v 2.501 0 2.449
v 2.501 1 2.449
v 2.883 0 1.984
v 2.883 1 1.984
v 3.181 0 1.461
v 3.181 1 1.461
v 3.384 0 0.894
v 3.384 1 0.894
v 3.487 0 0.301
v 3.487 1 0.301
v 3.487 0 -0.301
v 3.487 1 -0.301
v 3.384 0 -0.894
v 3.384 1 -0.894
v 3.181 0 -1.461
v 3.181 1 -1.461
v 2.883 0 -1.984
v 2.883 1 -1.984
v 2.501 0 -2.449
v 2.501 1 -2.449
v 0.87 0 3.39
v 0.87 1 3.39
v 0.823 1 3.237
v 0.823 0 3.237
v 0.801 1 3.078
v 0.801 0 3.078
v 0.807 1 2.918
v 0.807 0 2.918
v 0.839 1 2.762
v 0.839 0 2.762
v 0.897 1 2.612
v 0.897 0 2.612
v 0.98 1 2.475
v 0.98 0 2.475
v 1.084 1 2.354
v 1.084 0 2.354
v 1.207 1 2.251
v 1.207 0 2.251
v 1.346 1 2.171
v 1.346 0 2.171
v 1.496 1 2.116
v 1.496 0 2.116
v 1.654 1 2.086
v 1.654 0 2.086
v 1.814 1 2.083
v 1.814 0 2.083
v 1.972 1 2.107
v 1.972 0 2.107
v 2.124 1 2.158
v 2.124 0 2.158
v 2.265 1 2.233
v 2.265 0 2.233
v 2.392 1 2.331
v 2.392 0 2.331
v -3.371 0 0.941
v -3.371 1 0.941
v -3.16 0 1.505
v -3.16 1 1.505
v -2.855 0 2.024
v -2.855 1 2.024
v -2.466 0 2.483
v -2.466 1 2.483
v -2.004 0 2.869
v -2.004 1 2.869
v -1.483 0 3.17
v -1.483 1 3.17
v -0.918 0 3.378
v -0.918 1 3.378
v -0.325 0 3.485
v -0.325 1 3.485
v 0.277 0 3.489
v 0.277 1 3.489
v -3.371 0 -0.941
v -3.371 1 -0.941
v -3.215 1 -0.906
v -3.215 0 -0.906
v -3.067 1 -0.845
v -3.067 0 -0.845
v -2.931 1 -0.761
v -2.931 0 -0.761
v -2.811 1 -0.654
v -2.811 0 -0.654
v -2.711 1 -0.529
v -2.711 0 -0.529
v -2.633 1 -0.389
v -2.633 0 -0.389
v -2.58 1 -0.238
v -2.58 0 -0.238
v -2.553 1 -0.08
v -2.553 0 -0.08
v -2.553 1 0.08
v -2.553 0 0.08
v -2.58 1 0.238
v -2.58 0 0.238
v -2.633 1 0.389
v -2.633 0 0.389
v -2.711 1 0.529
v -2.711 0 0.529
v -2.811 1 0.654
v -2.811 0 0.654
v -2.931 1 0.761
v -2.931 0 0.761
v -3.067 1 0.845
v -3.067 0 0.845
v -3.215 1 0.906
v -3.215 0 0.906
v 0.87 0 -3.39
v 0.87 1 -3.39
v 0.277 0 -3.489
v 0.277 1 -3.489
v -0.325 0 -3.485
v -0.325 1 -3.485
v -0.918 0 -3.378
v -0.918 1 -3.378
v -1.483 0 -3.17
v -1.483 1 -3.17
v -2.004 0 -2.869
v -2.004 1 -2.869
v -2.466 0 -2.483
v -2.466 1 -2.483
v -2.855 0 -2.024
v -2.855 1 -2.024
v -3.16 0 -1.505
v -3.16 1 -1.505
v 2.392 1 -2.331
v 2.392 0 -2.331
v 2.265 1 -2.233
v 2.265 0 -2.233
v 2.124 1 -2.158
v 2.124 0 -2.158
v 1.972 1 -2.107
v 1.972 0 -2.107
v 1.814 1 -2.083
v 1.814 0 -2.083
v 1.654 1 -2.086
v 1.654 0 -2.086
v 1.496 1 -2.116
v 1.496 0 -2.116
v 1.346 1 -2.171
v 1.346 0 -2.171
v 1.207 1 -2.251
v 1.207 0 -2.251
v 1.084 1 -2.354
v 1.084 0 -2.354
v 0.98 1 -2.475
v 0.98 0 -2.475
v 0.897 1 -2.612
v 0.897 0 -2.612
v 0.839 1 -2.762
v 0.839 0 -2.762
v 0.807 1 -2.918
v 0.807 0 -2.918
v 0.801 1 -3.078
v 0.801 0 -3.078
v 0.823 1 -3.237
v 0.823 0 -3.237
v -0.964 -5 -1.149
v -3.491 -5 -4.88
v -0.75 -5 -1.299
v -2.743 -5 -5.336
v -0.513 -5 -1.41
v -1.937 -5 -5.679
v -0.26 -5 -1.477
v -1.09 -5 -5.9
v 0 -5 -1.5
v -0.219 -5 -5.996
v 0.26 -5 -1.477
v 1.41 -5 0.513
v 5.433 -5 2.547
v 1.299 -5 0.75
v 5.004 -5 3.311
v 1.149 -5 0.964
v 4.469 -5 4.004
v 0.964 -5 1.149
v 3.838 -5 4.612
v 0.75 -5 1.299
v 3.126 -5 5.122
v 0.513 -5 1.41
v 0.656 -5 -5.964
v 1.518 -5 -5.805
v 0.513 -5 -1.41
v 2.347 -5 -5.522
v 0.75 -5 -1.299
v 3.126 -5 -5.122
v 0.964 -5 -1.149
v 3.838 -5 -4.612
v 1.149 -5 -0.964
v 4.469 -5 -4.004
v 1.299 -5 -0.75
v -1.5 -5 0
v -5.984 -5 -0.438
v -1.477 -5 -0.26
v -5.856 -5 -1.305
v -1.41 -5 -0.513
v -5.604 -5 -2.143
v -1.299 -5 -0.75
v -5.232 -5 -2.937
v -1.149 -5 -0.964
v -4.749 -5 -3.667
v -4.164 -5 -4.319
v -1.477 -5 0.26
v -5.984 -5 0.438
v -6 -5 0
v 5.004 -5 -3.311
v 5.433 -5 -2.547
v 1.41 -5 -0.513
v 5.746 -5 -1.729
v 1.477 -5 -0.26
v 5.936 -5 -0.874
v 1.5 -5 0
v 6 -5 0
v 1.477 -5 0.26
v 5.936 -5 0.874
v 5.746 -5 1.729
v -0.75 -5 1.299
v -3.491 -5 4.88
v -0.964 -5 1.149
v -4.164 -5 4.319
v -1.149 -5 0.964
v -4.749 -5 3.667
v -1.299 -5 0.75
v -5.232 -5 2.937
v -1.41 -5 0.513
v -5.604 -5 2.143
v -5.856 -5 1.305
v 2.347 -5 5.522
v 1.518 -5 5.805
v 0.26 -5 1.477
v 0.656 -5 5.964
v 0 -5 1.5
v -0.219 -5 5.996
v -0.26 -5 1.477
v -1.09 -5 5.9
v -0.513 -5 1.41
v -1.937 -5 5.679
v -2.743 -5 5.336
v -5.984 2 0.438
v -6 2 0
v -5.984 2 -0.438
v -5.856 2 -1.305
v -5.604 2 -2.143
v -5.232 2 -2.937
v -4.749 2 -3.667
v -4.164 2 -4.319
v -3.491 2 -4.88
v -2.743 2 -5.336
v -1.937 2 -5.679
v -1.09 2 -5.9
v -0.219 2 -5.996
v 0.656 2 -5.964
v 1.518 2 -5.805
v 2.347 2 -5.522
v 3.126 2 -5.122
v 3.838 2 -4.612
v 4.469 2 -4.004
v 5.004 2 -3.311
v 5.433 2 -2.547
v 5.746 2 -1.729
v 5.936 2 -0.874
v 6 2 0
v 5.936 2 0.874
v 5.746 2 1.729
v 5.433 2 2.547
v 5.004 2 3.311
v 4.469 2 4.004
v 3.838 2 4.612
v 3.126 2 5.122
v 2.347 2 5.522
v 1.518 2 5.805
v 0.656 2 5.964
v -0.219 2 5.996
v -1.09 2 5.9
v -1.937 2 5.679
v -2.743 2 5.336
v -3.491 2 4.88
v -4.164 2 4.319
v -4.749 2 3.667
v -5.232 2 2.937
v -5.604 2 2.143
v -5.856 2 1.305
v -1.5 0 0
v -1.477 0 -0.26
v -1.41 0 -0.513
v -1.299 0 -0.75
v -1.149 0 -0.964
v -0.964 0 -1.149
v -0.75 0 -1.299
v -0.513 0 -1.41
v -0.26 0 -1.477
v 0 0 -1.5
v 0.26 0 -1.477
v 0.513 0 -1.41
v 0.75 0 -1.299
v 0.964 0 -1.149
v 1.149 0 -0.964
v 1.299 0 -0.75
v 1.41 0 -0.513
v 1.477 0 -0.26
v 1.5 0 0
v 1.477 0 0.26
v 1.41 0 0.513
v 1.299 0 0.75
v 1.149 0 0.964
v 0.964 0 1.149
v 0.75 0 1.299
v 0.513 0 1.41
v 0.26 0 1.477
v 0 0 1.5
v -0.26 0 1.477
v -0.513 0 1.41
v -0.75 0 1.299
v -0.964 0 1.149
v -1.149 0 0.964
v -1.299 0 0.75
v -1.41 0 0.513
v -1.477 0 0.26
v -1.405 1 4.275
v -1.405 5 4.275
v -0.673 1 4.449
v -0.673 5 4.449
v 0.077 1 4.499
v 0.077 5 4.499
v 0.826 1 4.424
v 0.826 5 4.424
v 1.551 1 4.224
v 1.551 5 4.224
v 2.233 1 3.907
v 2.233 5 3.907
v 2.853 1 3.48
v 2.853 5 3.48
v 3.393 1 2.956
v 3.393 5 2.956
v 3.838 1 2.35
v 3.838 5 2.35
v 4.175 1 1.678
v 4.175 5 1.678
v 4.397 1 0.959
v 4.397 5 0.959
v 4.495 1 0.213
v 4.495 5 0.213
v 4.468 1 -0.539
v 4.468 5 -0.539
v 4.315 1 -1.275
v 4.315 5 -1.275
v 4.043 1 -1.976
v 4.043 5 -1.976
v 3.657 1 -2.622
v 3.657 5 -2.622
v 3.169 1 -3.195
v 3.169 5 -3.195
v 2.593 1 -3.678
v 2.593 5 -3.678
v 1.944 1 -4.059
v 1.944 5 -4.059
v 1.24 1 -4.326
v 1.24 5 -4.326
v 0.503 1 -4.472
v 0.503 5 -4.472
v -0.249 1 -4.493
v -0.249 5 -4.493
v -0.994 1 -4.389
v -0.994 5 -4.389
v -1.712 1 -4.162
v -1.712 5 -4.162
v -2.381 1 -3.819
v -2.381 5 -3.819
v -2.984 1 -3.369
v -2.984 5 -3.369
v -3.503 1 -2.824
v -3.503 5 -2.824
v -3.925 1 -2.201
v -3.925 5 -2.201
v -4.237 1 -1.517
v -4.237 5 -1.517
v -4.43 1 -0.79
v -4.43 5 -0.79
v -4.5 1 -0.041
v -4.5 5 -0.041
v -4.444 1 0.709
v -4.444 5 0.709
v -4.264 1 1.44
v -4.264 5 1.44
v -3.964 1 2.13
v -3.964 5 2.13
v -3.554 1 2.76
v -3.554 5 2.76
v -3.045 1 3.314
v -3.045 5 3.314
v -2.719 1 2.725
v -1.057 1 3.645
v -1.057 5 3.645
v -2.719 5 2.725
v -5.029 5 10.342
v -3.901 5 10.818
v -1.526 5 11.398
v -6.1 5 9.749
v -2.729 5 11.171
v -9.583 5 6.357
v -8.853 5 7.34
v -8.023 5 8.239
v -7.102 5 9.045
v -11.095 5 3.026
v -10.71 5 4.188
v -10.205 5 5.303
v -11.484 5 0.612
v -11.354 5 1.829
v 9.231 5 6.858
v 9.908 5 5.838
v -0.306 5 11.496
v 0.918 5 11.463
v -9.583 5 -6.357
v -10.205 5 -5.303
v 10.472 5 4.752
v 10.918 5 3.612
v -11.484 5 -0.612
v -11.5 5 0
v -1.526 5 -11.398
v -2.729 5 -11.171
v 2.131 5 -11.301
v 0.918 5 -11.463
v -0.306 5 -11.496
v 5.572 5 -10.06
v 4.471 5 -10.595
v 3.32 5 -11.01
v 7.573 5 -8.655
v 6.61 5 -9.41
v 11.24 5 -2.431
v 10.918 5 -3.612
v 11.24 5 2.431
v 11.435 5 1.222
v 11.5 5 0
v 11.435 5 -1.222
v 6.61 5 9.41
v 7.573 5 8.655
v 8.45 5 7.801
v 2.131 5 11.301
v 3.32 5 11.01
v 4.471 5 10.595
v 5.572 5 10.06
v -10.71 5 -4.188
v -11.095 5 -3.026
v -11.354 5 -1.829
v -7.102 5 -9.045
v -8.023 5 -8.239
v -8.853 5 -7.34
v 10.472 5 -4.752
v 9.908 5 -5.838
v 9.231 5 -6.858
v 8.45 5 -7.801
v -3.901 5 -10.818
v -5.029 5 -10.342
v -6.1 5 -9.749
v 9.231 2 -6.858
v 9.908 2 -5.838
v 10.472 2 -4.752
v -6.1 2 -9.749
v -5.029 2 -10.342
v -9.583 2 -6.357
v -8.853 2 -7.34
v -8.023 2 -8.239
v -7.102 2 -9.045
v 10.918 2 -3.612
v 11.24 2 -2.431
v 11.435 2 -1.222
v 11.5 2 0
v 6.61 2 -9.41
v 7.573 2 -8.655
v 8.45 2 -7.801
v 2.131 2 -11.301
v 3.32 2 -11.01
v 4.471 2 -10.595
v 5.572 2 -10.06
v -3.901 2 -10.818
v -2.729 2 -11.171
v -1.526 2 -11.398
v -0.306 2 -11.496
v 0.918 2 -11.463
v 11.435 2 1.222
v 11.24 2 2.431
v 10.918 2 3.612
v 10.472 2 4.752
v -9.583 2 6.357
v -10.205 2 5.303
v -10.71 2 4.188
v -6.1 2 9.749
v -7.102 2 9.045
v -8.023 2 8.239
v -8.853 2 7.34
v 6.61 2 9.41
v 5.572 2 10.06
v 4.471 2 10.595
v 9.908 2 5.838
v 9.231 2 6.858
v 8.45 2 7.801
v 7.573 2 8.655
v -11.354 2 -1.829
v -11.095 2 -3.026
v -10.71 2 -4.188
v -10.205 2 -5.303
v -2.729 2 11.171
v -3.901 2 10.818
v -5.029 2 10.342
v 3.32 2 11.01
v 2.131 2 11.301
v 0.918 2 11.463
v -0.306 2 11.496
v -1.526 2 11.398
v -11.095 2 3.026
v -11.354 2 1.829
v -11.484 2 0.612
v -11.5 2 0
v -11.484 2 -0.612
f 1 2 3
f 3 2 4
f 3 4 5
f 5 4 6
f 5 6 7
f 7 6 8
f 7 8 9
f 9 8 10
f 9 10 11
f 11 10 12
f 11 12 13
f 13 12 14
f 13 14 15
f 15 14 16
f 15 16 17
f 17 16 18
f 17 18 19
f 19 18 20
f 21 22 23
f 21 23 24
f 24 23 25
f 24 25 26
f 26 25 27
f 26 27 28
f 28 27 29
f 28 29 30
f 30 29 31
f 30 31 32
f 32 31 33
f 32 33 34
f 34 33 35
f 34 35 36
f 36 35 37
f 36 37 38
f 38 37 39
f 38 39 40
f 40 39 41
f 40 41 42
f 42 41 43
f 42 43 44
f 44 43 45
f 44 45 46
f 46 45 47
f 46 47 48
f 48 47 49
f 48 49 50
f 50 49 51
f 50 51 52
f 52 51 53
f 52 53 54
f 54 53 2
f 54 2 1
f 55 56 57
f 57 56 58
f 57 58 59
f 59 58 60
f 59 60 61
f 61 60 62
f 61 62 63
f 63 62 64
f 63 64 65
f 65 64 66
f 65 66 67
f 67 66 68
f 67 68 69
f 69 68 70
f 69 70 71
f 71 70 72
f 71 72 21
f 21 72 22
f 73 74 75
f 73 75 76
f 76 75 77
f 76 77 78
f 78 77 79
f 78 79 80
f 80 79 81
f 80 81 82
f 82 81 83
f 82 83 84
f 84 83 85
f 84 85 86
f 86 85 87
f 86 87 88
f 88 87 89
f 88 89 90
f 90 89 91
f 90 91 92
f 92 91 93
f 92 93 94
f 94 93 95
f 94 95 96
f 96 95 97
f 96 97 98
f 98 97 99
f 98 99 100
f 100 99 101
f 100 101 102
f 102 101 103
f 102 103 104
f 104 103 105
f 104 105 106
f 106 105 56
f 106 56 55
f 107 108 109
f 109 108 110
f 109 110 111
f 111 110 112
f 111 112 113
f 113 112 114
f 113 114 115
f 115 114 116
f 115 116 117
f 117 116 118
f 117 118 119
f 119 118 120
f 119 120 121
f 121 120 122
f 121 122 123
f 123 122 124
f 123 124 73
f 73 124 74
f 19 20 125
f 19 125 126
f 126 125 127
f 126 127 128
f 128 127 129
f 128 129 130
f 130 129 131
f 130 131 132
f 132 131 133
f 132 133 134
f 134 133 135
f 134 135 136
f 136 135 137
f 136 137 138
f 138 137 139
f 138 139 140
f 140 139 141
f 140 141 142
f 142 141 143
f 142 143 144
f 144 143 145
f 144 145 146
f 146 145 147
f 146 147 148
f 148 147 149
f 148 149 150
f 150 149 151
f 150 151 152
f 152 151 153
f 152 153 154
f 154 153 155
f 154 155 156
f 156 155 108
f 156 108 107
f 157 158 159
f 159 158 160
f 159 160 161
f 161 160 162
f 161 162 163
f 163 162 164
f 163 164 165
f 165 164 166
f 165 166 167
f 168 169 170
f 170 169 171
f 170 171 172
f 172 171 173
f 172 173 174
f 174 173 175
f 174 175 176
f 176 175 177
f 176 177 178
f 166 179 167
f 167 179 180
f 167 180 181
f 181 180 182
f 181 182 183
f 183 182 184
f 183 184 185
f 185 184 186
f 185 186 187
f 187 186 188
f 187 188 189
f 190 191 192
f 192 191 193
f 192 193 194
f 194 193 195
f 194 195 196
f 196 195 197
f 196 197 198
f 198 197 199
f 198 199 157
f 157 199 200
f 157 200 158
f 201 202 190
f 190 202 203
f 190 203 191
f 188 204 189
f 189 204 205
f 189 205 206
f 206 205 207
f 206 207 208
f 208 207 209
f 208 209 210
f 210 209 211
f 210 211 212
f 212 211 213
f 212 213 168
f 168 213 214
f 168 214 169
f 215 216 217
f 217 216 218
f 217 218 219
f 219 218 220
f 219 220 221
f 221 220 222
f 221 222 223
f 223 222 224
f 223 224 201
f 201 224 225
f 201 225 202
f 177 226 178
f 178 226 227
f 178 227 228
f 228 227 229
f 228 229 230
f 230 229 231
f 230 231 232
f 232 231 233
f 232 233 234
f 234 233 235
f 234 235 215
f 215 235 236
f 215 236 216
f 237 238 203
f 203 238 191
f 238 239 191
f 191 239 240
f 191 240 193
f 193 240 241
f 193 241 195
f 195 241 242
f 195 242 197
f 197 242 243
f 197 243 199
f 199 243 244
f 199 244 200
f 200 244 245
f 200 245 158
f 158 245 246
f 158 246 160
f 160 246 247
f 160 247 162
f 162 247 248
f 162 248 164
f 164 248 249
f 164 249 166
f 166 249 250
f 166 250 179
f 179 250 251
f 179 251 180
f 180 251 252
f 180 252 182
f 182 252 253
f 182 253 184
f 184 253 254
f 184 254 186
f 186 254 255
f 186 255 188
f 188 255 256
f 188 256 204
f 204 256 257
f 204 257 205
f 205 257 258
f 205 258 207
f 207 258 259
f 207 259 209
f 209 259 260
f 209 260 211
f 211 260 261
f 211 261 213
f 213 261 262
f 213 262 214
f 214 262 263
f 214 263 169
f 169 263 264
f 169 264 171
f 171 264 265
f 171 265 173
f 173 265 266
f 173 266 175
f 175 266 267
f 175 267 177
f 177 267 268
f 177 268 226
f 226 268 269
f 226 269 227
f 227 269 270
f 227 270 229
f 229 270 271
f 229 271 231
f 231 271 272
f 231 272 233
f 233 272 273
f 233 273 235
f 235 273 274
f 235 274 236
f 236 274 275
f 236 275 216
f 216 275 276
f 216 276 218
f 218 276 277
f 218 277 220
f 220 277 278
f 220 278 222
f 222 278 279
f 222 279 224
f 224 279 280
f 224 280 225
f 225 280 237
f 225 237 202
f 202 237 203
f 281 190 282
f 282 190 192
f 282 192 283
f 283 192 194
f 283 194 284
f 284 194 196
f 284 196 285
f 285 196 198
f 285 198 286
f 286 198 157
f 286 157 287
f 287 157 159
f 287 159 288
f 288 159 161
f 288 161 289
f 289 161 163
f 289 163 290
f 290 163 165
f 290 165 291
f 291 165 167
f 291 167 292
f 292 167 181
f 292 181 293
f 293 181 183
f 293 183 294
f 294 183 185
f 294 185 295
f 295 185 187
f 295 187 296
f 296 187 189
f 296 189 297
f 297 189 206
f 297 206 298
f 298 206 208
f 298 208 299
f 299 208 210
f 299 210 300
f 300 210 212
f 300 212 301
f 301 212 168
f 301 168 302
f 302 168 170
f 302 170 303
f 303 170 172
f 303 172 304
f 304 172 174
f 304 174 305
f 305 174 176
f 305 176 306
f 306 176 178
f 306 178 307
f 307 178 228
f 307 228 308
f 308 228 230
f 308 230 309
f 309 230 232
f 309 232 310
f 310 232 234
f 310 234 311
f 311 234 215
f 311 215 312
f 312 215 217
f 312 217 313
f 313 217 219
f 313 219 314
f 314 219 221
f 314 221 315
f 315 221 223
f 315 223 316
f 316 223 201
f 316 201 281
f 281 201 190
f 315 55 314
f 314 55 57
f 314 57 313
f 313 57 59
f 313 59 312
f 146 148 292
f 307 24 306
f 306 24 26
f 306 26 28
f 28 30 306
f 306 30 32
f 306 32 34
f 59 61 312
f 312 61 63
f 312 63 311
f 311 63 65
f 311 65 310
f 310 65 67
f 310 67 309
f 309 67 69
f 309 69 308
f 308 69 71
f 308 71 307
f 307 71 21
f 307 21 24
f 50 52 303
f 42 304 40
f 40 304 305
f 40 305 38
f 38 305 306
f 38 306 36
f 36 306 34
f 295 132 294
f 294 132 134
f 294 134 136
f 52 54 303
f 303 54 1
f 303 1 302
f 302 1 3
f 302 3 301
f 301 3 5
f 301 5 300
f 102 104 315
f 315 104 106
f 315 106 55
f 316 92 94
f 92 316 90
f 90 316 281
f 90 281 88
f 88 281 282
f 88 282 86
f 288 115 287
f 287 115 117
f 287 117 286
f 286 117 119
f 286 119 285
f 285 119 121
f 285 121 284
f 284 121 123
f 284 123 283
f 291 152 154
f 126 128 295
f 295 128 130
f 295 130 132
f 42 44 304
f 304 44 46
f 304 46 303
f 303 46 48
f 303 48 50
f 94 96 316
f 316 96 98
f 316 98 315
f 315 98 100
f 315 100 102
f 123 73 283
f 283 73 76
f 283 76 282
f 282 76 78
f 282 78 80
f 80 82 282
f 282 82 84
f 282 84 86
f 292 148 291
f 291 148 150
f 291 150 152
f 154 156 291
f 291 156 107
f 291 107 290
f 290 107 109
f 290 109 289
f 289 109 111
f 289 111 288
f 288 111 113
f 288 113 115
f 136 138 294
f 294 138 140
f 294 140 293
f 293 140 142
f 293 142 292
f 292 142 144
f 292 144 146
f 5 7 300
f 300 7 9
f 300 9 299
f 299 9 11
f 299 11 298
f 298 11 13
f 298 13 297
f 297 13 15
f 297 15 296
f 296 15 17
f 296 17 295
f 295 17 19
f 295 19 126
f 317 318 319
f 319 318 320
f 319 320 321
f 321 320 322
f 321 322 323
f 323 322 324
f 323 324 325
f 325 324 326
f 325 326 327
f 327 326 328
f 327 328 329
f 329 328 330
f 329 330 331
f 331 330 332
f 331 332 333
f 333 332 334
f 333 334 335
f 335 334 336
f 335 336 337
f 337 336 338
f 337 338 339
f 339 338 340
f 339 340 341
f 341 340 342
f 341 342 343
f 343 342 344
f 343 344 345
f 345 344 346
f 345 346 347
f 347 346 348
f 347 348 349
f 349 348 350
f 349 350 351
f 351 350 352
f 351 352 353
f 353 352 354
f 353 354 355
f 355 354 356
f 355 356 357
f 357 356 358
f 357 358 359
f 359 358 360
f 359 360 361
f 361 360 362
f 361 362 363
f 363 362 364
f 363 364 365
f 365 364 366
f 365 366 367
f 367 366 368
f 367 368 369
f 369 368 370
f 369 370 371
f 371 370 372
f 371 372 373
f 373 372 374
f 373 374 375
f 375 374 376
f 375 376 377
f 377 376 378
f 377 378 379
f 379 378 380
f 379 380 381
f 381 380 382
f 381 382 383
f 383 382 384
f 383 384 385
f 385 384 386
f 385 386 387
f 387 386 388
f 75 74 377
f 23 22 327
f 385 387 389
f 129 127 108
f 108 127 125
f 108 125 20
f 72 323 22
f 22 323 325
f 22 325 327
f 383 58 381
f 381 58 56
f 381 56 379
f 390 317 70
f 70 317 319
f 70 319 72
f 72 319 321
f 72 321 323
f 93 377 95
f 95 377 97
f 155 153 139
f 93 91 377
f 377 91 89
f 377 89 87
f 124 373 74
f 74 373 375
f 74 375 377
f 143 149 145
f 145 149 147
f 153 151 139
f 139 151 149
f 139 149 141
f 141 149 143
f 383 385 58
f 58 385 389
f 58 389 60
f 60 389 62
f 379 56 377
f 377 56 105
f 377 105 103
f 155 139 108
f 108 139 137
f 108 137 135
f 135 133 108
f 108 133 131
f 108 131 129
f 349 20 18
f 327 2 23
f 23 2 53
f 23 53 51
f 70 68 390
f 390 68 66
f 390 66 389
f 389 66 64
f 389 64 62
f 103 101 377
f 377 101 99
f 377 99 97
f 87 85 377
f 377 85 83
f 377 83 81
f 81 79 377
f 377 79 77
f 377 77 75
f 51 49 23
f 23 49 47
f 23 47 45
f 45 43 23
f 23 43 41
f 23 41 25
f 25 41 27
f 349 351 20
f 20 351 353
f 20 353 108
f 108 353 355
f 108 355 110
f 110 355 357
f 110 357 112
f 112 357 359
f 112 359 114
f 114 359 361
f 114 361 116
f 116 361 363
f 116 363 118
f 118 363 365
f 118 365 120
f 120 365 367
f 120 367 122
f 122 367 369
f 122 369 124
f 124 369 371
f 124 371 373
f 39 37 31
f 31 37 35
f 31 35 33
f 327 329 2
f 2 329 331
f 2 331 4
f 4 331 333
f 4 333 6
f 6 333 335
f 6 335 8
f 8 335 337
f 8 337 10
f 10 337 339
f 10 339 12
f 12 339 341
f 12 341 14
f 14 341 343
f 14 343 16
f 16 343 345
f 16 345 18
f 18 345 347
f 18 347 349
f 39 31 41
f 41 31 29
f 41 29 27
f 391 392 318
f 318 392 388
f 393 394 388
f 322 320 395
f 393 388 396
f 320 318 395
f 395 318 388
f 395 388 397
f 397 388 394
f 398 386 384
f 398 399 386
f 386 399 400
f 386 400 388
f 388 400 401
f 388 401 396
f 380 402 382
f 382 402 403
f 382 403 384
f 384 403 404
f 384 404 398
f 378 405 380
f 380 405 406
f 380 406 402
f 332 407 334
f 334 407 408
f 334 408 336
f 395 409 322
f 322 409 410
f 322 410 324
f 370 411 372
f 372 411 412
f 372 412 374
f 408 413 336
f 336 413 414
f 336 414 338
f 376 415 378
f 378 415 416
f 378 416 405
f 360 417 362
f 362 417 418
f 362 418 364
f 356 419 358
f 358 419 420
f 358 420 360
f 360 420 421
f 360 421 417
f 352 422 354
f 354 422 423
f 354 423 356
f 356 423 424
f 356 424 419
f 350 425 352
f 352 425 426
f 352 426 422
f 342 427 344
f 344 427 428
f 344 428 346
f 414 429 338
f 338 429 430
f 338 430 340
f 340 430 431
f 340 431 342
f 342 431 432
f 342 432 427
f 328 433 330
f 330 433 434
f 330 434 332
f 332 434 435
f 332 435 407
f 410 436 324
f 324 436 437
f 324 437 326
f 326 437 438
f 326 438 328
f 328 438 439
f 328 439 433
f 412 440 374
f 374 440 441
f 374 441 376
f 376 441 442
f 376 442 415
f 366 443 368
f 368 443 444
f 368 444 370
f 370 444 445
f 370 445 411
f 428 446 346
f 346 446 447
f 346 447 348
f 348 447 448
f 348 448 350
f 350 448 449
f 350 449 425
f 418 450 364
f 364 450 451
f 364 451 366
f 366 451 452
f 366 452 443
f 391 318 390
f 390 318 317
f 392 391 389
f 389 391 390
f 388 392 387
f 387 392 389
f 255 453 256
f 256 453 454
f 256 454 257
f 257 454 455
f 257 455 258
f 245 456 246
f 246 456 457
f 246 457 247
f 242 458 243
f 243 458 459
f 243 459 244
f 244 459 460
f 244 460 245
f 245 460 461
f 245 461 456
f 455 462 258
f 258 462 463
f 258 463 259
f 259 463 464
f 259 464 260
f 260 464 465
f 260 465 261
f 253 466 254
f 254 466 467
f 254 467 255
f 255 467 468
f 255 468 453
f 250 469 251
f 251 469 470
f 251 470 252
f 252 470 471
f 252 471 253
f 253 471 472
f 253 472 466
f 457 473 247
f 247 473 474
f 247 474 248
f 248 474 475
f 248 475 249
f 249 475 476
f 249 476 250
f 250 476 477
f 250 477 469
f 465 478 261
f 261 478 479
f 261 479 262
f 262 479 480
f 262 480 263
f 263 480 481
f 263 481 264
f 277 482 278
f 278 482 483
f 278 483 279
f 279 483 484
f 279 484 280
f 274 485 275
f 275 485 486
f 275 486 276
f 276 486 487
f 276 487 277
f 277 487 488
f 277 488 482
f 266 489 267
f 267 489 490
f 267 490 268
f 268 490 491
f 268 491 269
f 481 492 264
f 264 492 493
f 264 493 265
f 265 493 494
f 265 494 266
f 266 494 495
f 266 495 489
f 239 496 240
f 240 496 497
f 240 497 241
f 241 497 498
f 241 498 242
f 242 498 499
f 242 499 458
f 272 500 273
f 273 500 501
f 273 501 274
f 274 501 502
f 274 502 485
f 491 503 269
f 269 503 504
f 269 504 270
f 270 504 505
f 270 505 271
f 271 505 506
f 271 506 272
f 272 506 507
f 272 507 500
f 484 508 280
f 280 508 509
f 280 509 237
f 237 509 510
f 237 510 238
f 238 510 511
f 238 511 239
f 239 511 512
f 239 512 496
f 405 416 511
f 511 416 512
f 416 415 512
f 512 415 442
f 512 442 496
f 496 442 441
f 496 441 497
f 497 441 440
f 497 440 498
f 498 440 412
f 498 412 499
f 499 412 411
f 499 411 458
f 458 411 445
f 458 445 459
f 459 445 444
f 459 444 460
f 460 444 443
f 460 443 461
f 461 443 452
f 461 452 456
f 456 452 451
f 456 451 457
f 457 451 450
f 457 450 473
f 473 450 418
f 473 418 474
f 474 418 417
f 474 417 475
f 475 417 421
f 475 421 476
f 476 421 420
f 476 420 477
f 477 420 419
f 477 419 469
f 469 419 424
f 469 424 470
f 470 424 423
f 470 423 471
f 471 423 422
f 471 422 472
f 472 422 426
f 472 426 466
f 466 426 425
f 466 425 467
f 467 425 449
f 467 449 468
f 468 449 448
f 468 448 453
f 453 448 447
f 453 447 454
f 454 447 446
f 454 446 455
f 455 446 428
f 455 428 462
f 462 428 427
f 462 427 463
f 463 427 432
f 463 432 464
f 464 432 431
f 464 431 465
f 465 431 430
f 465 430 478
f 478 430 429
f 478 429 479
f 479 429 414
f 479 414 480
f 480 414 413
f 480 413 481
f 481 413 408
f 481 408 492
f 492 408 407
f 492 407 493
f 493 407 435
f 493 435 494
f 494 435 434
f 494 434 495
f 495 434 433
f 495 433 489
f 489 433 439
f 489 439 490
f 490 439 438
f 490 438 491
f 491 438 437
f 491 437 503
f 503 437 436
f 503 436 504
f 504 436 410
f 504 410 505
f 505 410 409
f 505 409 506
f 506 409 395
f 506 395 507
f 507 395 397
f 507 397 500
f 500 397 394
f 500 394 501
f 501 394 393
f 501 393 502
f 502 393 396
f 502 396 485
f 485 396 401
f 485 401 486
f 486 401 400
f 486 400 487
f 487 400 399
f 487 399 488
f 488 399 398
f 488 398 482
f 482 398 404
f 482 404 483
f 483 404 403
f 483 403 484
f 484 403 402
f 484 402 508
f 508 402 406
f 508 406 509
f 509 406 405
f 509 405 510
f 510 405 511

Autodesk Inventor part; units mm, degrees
ref_plane "YZ Plane" through (0, 0, 0) normal (1, 0, 0) x (0, 1, 0)
ref_plane "XZ Plane" through (0, 0, 0) normal (0, 1, 0) x (-1, 0, 0)
ref_plane "XY Plane" through (0, 0, 0) normal (0, 0, 1) x (1, 0, 0)
sketch "Эскиз1" plane through (0, 0, 0) normal (0, 1, 0) x (-1, 0, 0)
  circle A0 centre (0, 0) radius 3.5
  circle A1 centre (3.5, 0) radius 0.95
  circle A2 centre (-1.75, 3.0311) radius 0.95
  circle A3 centre (-1.75, -3.0311) radius 0.95
  circle A4 centre (0, 0) radius 4.5
  circle A5 centre (0, 0) radius 1.5
  point P0 (-2.5006, -2.4488)
  point P1 (-2.5006, 2.4488)
  point P2 (-0.8704, 3.39)
  point P3 (3.3711, 0.9412)
  point P4 (3.3711, -0.9412)
  point P5 (-0.8704, -3.39)
  dimension "d0" = 7
  dimension "d1" = 1.9
  dimension "d4" = 360
  dimension "d6" = 9
  dimension "d7" = 3
extrude "Выдавливание1" add sketch "Эскиз1" along normal blind 1 contours A0 A1 | A0 A1 | A2 A0 | A0 A2 | A3 A0 | A0 A3 | A4
sketch "Эскиз2" plane through (0, 0, 0) normal (0, -1, 0) x (1, 0, 0)
  circle A0 centre (0, 0) radius 1.5
  circle A1 centre (0, 0) radius 6
  dimension "d10" = 3
  dimension "d11" = 12
extrude "Выдавливание2" add sketch "Эскиз2" along normal blind 5
sketch "Эскиз3" plane through (0, 0, 0) normal (0, 1, 0) x (1, 0, 0)
  circle A0 centre (0, 0) radius 4.5
  circle A1 centre (0, 0) radius 6
  circle A2 centre (0, 0) radius 4.5
  dimension "d14" = 12
extrude "Выдавливание3" add sketch "Эскиз3" along normal blind 5
sketch "Эскиз4" plane through (0, 5, 0) normal (0, 1, 0) x (1, 0, 0)
  arc A0 (0.8704, 3.39) -> (2.5006, 2.4488) centre (1.75, 3.0311) ccw projected
  line L0 (0, 0) -> (1.75, 3.0311)
  line L1 (0, 0) -> (-5.8023, -10.0499)
  line L2 (-3.2807, -7.6668) -> (-1.0566, -3.645)
  line L3 (-1.0566, -3.645) -> (-2.7193, -2.7255)
  line L4 (-2.7193, -2.7255) -> (-4.9434, -6.7473)
  line L5 (-4.9434, -6.7473) -> (-3.2807, -7.6668)
  circle A1 centre (0, 0) radius 6 projected
  line L6 (-3.2807, -7.6668) -> (-2.7193, -2.7255) construction
  line L7 (-1.0566, -3.645) -> (-4.9434, -6.7473) construction
  point P0 (-3, -5.1962)
  point P1 (-2.1406, -5.6052)
  point P2 (-3.7861, -4.6546)
  dimension "d17" = 1.9
extrude "Выдавливание4" add sketch "Эскиз4" against normal blind 5 contours L3 L2 A1 L1 | L1 A1 L4 L3
sketch "Эскиз5" plane through (0, 5, 0) normal (0, 1, 0) x (1, 0, 0)
  circle A0 centre (0, 0) radius 11.5
  circle A1 centre (0, 0) radius 6
  dimension "d20" = 23
extrude "Выдавливание5" add sketch "Эскиз5" against normal blind 3
properties part number "крышка для втулки"
